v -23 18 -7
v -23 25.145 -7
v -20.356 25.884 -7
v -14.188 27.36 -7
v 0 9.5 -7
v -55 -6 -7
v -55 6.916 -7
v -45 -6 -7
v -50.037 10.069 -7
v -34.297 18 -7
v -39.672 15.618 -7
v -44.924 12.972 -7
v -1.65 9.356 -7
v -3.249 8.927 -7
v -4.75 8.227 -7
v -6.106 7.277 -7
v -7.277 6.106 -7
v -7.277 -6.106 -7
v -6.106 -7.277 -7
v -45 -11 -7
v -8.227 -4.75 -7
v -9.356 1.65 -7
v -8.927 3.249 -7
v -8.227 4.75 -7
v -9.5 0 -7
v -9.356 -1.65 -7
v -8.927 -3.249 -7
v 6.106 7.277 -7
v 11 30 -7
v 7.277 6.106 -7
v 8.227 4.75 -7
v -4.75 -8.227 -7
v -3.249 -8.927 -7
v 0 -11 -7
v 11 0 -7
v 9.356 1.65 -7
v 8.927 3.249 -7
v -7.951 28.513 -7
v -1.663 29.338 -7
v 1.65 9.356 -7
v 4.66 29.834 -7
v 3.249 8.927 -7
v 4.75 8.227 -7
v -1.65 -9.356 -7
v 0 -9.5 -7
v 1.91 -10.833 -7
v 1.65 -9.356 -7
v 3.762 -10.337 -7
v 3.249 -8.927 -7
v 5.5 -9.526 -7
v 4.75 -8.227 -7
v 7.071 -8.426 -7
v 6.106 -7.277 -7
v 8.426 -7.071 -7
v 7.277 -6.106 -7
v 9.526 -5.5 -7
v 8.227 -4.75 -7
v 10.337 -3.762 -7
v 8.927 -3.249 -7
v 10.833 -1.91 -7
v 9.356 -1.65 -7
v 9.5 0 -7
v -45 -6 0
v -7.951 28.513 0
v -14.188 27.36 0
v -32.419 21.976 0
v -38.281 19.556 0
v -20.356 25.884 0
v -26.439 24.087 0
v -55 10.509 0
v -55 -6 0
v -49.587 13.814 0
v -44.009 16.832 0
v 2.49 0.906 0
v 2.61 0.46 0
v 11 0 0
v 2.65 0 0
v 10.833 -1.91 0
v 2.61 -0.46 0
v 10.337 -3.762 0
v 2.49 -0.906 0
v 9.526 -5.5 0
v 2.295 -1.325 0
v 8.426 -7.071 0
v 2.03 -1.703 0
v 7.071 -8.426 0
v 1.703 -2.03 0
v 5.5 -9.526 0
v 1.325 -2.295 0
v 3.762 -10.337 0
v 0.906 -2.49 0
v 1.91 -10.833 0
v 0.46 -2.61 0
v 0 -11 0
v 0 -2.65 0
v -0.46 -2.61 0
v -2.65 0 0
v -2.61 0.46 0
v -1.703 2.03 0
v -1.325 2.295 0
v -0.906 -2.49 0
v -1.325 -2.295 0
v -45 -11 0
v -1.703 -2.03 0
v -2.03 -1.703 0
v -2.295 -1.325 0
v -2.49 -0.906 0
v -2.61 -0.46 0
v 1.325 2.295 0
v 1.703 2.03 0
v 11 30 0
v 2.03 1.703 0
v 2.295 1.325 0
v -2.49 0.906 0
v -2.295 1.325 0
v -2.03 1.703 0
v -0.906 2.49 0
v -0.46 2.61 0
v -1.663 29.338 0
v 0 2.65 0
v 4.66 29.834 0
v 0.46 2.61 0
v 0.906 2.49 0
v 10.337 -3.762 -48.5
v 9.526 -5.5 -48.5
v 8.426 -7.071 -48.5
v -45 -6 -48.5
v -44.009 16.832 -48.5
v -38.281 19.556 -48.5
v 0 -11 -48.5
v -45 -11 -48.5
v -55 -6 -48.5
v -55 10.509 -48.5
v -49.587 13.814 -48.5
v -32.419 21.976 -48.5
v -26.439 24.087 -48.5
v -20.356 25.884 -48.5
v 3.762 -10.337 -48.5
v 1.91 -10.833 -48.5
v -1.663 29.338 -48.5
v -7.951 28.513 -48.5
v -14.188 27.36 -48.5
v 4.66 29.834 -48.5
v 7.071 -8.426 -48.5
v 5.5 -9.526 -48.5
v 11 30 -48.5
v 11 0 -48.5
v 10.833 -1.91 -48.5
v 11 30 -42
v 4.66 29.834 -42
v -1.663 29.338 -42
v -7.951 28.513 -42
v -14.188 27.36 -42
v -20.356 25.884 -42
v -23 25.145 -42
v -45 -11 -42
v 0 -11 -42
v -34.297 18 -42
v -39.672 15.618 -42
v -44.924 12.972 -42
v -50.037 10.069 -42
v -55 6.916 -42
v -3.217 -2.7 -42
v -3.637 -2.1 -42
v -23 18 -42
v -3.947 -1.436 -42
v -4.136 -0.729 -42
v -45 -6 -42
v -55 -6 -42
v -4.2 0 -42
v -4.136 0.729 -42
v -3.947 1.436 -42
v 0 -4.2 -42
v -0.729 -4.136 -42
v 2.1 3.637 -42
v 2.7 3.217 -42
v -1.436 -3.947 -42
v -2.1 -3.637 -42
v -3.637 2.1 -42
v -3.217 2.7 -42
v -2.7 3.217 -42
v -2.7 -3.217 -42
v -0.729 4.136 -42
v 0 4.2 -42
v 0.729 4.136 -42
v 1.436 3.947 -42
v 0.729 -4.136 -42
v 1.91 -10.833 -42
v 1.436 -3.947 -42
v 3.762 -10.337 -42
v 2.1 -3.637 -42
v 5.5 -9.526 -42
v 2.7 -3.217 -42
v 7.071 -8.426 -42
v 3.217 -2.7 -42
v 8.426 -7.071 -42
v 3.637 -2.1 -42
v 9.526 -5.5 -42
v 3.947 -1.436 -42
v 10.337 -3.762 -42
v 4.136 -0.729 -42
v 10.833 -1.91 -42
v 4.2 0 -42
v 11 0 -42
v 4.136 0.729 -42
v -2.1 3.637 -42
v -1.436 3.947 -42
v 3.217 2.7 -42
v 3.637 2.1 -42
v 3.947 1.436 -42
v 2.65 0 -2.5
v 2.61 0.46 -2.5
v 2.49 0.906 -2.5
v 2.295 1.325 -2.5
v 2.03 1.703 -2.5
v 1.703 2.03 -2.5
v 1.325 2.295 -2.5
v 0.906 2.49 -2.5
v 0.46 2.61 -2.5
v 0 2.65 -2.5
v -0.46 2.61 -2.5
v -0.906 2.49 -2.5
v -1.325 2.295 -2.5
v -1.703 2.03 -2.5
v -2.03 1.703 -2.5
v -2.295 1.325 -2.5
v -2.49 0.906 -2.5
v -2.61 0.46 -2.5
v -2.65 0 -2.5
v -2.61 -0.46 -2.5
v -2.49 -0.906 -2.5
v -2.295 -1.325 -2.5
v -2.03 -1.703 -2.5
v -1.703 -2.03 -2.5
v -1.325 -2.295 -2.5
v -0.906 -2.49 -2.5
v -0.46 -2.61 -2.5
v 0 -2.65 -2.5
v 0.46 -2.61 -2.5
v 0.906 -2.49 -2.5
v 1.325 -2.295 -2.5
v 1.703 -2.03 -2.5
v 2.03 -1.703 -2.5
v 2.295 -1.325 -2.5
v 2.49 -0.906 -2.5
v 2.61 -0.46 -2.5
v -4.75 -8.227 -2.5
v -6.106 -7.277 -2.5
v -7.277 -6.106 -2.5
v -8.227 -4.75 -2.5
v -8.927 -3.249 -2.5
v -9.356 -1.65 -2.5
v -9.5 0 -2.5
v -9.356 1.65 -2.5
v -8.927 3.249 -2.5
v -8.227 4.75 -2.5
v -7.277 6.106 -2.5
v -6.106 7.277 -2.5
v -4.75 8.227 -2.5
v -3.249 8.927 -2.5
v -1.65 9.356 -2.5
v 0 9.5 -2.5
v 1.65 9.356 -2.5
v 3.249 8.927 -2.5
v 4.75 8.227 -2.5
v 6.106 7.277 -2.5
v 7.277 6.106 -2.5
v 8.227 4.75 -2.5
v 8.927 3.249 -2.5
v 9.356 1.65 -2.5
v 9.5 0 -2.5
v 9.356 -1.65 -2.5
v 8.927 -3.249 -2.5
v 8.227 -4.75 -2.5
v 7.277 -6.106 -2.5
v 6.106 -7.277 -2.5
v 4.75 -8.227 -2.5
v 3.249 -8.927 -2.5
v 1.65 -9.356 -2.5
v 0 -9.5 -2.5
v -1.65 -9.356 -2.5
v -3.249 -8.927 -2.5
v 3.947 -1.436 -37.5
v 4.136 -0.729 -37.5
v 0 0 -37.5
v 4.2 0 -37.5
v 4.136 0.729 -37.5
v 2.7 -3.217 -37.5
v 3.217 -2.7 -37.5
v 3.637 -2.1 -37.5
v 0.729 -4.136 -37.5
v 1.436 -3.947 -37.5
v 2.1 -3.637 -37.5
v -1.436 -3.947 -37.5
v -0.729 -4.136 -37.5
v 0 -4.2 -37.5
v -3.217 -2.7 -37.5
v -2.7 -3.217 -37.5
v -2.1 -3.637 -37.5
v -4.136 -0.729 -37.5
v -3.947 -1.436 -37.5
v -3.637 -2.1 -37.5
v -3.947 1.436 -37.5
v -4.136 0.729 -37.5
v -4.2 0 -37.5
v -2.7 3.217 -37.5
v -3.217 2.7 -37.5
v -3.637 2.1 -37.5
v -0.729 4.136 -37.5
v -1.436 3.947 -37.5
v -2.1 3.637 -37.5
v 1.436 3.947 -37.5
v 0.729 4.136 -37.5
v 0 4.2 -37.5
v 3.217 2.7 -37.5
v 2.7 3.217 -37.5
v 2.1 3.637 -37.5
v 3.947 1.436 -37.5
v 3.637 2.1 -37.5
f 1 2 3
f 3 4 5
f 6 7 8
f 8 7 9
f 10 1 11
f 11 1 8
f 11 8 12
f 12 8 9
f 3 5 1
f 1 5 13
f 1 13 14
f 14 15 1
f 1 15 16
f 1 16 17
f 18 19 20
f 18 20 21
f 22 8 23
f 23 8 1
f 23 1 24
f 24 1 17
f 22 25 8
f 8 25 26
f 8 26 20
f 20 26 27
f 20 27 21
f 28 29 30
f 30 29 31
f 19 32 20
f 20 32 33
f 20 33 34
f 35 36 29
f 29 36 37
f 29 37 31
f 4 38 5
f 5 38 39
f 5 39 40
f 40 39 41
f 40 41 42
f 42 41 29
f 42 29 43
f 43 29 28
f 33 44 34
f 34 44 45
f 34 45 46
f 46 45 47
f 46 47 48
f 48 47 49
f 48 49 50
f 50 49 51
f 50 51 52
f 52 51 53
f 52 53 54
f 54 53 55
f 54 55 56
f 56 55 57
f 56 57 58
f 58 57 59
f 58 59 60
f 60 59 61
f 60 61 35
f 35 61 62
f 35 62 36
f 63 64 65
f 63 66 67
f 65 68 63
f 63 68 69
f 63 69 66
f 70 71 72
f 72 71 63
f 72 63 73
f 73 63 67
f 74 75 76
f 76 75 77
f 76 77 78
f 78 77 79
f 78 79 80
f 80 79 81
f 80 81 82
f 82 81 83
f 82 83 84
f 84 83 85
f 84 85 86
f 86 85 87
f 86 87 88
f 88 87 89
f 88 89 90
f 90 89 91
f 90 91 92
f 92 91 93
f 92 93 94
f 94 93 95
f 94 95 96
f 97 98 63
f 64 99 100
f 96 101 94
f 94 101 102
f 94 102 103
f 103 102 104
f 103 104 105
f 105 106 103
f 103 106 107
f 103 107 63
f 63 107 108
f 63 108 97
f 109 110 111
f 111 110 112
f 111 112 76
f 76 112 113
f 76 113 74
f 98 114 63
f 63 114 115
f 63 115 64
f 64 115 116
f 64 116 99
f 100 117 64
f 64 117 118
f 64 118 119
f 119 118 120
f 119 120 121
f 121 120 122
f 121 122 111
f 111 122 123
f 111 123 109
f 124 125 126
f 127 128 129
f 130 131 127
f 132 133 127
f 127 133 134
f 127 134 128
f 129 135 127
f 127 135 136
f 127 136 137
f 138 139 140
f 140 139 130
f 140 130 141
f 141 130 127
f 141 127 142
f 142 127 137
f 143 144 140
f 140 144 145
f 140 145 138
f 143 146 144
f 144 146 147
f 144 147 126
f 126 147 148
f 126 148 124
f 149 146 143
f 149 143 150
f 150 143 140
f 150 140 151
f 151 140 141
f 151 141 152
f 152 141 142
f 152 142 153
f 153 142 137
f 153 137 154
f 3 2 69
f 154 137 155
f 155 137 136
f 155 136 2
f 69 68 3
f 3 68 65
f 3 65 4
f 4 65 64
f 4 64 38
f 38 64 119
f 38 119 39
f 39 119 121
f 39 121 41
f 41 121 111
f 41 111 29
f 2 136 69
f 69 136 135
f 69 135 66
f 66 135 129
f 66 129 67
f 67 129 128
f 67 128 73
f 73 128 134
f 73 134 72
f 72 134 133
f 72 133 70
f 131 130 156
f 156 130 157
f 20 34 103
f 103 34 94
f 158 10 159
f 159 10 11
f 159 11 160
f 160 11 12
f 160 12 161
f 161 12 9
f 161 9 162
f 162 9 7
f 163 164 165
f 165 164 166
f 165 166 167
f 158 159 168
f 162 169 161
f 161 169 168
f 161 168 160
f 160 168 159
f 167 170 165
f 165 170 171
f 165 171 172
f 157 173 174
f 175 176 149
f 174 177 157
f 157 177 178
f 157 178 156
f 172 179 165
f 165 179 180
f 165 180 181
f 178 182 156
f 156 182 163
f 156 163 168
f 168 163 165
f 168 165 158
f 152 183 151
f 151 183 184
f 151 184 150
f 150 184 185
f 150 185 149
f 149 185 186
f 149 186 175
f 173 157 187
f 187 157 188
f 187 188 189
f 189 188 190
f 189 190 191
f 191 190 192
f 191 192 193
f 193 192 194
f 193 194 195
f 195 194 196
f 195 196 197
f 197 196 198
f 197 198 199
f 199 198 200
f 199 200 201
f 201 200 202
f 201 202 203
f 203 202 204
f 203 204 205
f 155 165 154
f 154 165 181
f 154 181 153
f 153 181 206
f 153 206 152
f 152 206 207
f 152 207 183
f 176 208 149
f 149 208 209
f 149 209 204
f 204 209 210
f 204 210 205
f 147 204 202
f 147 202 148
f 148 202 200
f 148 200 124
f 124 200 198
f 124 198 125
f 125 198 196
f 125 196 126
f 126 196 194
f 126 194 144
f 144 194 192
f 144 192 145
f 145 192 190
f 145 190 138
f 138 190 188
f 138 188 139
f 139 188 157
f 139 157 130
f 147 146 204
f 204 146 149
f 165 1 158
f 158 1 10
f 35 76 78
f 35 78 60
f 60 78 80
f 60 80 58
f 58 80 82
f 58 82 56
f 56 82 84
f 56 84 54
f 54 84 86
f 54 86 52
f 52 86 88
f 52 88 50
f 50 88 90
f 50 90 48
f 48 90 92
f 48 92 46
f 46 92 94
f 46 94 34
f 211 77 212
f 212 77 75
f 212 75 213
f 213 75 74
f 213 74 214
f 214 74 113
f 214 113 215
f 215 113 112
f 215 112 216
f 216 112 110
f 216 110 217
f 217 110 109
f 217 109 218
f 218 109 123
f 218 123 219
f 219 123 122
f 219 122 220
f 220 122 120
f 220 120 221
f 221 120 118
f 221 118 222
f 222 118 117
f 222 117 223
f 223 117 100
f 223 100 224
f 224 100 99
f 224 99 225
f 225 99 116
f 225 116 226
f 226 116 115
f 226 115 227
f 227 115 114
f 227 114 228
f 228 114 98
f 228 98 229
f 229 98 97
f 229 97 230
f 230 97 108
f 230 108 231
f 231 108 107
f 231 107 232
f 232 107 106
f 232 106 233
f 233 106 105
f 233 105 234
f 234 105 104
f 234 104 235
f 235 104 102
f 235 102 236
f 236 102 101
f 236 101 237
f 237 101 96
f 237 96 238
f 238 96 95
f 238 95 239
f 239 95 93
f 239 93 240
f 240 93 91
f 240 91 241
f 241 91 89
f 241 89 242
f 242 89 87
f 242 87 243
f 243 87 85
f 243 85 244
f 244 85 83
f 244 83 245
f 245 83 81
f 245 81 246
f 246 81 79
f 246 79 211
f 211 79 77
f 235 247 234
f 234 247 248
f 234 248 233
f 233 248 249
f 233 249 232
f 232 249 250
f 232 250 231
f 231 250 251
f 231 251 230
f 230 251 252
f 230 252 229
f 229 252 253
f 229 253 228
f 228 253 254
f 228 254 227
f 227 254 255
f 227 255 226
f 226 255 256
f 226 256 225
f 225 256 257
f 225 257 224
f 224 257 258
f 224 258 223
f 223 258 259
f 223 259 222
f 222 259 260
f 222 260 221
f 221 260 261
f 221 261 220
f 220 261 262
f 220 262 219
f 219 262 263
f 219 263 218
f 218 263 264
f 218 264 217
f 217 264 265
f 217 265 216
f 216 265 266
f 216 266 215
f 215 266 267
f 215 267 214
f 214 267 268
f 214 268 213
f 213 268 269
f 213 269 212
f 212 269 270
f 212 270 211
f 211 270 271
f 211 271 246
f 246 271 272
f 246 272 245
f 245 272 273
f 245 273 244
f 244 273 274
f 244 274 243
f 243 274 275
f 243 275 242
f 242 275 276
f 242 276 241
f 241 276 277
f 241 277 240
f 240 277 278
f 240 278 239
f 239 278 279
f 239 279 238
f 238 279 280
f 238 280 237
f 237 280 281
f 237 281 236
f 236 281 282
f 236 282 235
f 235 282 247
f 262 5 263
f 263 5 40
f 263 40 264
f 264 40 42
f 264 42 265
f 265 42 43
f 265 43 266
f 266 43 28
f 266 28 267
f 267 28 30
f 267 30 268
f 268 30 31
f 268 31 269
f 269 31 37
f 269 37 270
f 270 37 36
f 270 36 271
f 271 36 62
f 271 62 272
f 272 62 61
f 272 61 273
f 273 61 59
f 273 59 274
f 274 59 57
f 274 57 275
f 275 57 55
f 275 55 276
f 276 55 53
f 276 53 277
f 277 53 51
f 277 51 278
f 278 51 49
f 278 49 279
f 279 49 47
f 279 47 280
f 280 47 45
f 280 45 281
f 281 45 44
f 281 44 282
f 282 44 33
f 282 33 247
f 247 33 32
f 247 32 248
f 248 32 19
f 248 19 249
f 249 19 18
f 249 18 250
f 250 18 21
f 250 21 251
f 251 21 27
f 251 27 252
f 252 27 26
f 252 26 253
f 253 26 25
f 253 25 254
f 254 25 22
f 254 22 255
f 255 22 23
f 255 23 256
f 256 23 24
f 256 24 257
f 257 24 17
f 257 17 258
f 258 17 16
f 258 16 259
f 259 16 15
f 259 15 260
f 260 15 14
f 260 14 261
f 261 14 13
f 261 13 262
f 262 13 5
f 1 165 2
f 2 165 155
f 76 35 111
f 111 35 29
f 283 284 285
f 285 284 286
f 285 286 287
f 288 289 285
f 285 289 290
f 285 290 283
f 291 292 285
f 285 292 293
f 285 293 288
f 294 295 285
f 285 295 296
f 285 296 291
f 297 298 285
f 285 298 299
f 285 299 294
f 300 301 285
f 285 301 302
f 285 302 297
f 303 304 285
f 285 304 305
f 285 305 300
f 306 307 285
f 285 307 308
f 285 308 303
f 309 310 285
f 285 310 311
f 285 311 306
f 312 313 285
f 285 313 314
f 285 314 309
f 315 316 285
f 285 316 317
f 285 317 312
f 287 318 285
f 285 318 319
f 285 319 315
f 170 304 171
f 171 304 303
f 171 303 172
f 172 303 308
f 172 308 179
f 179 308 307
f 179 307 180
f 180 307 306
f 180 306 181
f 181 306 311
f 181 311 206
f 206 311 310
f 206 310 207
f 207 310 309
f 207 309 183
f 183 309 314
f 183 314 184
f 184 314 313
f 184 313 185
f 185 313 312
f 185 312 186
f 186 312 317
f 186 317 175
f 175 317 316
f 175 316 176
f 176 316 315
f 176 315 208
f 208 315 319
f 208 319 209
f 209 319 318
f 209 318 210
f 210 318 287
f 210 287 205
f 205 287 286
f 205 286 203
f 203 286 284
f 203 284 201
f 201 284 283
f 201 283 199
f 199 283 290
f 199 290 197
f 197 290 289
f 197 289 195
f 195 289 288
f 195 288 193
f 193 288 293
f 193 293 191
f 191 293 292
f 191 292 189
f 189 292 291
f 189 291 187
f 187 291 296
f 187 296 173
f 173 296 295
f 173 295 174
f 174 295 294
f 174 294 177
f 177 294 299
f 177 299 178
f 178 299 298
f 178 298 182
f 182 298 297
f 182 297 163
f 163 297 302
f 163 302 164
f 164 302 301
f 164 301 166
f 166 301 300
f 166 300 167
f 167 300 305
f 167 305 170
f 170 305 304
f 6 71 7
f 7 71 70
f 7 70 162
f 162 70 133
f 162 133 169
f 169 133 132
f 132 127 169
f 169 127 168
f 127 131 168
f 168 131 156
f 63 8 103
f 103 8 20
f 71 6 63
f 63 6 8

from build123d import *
from build123d.topology import SkipClean

# Parameters (mm, degrees)
SKETCH1_R              = 9.5
BOSS_EXTRUDE1_DEPTH    = 48
CUT_EXTRUDE1_DEPTH     = 62.48170459575759
BOSS_EXTRUDE2_START    = -2.5
SKETCH3_R              = 9.5
SKETCH3_R_2            = 2.4
BOSS_EXTRUDE2_DEPTH    = 2.5
SKETCH4_R              = 9.5
SKETCH4_R_2            = 4.2
BOSS_EXTRUDE3_DEPTH    = 7
SKETCH5_R              = 4.2
BOSS_EXTRUDE4_DEPTH    = 11
BOSS_EXTRUDE5_DEPTH    = 48
CUT_EXTRUDE2_START     = -48
CUT_EXTRUDE2_OUTLINE_R = 2.65
CUT_EXTRUDE2_DEPTH     = 48
CUT_EXTRUDE3_START     = -4.5
SKETCH8_R              = 9.5
CUT_EXTRUDE3_DEPTH     = 4.5
SKETCH9_R              = 6.067807638148196
CUT_EXTRUDE4_DEPTH     = 4.5
SKETCH10_R             = 9.5
BOSS_EXTRUDE6_DEPTH    = 4.5
SKETCH11_R             = 4.2
BOSS_EXTRUDE7_DEPTH    = 3.5
SKETCH12_R             = 2.4
BOSS_EXTRUDE8_DEPTH    = 2.5
CUT_EXTRUDE5_DEPTH     = 14.500000000000005
SKETCH15_R             = 3.436413098279149
BOSS_EXTRUDE9_DEPTH    = 10
BOSS_EXTRUDE10_DEPTH   = 0.5
SKETCH18_R             = 4.2
CUT_EXTRUDE8_DEPTH     = 0.5
CUT_EXTRUDE9_DEPTH     = 69.52919086053767
BOSS_EXTRUDE11_DEPTH   = 6.9999999999999964
CUT_EXTRUDE10_DEPTH    = 99.24586505293748
BOSS_EXTRUDE12_DEPTH   = 41.5
SKETCH25_R             = 4.2
CUT_EXTRUDE11_DEPTH    = 0.5
CUT_EXTRUDE12_DEPTH    = 99.24586505293753
CUT_EXTRUDE13_DEPTH    = 80.2290981899959


# Read off the part's stored shape, not the designer's step: Cut-Extrude2
with BuildPart() as part:
    # Sketch1 → Boss-Extrude1 (new body)
    with BuildSketch(Plane.XY):
        with BuildLine():
            Line((-12, 0), (-12, 30))
            Line((-12, 30), (12, 30))
            Line((12, 30), (12, 0))
            ThreePointArc((12, 0), (-2.2e-15, -12), (-12, 0))
        make_face()
        Circle(SKETCH1_R, mode=Mode.SUBTRACT)
    extrude(amount=-BOSS_EXTRUDE1_DEPTH)

    # Sketch2 → Cut-Extrude1 (cut, through all)
    with BuildSketch(Plane.ZY.offset(12)):
        Polygon((-6.999999999999999, -12), (-41, -12.000000000000004), (-41, 18), (-7.000000000000001, 18.000000000000004), align=None)
    extrude(amount=-CUT_EXTRUDE1_DEPTH, mode=Mode.SUBTRACT)

    # Sketch3 → Boss-Extrude2 (add)
    with BuildSketch(Plane(origin=(0, 0, -48), x_dir=(-1, 0, 0), z_dir=(0, 0, -1)).offset(BOSS_EXTRUDE2_START)):
        Circle(SKETCH3_R)
        Circle(SKETCH3_R_2, mode=Mode.SUBTRACT)
    extrude(amount=BOSS_EXTRUDE2_DEPTH)

    # Sketch4 → Boss-Extrude3 (add)
    with BuildSketch(Plane.XY):
        with Locations(Location((0, 0, 0), (0, 0, 180))):
            Circle(SKETCH4_R)
        Circle(SKETCH4_R_2, mode=Mode.SUBTRACT)
    extrude(amount=-BOSS_EXTRUDE3_DEPTH)

    # Sketch5 → Boss-Extrude4 (add)
    with BuildSketch(Plane.XY):
        Circle(SKETCH5_R)
    extrude(amount=-BOSS_EXTRUDE4_DEPTH)

    # Sketch6 → Boss-Extrude5 (add)
    with BuildSketch(Plane(origin=(0, 0, -48), x_dir=(-1, 0, 0), z_dir=(0, 0, -1))):
        Polygon((12, 30), (12, 18), (17.999999999999925, 18), (38.00000000000001, 18), (38.00000000000001, 30), align=None)
    extrude(amount=-BOSS_EXTRUDE5_DEPTH)

    # Cut-Extrude2 outline → Cut-Extrude2 (cut)
    with BuildSketch(Plane.XY.offset(CUT_EXTRUDE2_START)):
        Circle(CUT_EXTRUDE2_OUTLINE_R)
    extrude(amount=CUT_EXTRUDE2_DEPTH, mode=Mode.SUBTRACT)

    # Sketch8 → Cut-Extrude3 (cut)
    with BuildSketch(Plane(origin=(0, -4e-16, -7), x_dir=(-1, 0, 0), z_dir=(0, -6e-17, -1)).offset(CUT_EXTRUDE3_START)):
        Circle(SKETCH8_R)
    extrude(amount=CUT_EXTRUDE3_DEPTH, mode=Mode.SUBTRACT)


with BuildPart() as cut_extrude3_piece_1:
    # of the separate pieces the step leaves, piece 1, a body of its own (cut_extrude3_pieces)
    add(part.part.solids().sort_by_distance((-12, 0, 0))[0])

    # Sketch10 → Boss-Extrude6 (add)
    with BuildSketch(Plane.XY.offset(-45.5)):
        with Locations(Location((0, 0, 0), (0, 0, 90))):
            Circle(SKETCH10_R)
    extrude(amount=BOSS_EXTRUDE6_DEPTH)

    # Sketch11 → Boss-Extrude7 (add)
    with BuildSketch(Plane.XY.offset(-41)):
        with Locations(Location((0, 0, 0), (0, 0, 180))):
            Circle(SKETCH11_R)
    extrude(amount=BOSS_EXTRUDE7_DEPTH)

    # Sketch12 → Boss-Extrude8 (add)
    with BuildSketch(Plane(origin=(0, 0, -48), x_dir=(-1, 0, 0), z_dir=(0, 0, -1))):
        Circle(SKETCH12_R)
    extrude(amount=-BOSS_EXTRUDE8_DEPTH)

    # Sketch13 → Cut-Extrude5 (cut)
    with BuildSketch(Plane(origin=(0, 30, 0), x_dir=(1, 0, 0), z_dir=(0, 1, 0))):
        Polygon((12, 41), (-23.000000000000004, 41), (-22.999999999999996, 6.999999999999988), (12, 7.000000000000001), align=None)
    extrude(amount=-CUT_EXTRUDE5_DEPTH, mode=Mode.SUBTRACT)

    # Sketch15 → Boss-Extrude9 (add)
    with BuildSketch(Plane(origin=(0, 0, -48), x_dir=(-1, 0, 0), z_dir=(0, 0, -1))):
        Circle(SKETCH15_R)
    extrude(amount=-BOSS_EXTRUDE9_DEPTH)

    # Sketch16 → Boss-Extrude10 (add)
    with BuildSketch(Plane(origin=(0, 0, -48), x_dir=(-1, 0, 0), z_dir=(0, 0, -1))):
        Polygon((38.00000000000001, 30), (-12, 30), (-12, 18), (12, 18), (38.00000000000001, 18), align=None)
        with BuildLine():
            Line((-12, 0), (11.999999999999998, 0))
            ThreePointArc((11.999999999999998, 0), (-2.2e-15, -12), (-12, 0))
        make_face()
        with BuildLine():
            ThreePointArc((11.999999999999998, 0), (7.3e-16, 11.999999999999998), (-11.999999999999998, 1.47e-15))
            Line((-12, 0), (12, 0))
        make_face()
        with BuildLine():
            Line((12, 0), (-12, 0))
            ThreePointArc((-11.999999999999998, 1.47e-15), (-2.2e-15, -11.999999999999998), (11.999999999999998, -2.94e-15))
        make_face()
        with BuildLine():
            Line((12, 18), (-12, 18))
            Line((-12, 18), (-12, 0))
            ThreePointArc((-11.999999999999998, 1.47e-15), (7.3e-16, 11.999999999999998), (11.999999999999998, 0))
            Line((11.999999999999998, 0), (11.999999999999998, 18))
        make_face()
    extrude(amount=BOSS_EXTRUDE10_DEPTH)

    # Sketch18 → Cut-Extrude8 (cut)
    with SkipClean():  # the faces are left unmerged after this step: merging them gives an invalid solid
        with BuildSketch(Plane.XY.offset(-41)):
            with BuildLine():
                Line((12.000000000000004, 30), (-22.999999999999996, 30))
                Line((-22.999999999999996, 30), (-22.999999999999996, 18))
                Line((-22.999999999999996, 18), (-12.000000000000002, 18))
                Line((-12.000000000000002, 18), (-12.000000000000002, 0))
                ThreePointArc((-12, 1.47e-15), (-2.2e-15, -12), (12, -2.94e-15))
                Line((12, 0), (12, 30))
            make_face()
            Circle(SKETCH18_R, mode=Mode.SUBTRACT)
        extrude(amount=-CUT_EXTRUDE8_DEPTH, mode=Mode.SUBTRACT)

    # Sketch19 → Cut-Extrude9 (cut, through all)
    with SkipClean():  # the faces are left unmerged after this step: merging them gives an invalid solid
        with BuildSketch(Plane.XY):
            with BuildLine():
                ThreePointArc((11, -2.69e-15), (-2.02e-15, -11), (-11, 1.35e-15))
                Line((-11, 0), (-12.000000000000002, 0))
                ThreePointArc((-12.000000000000002, 0), (-7.3e-16, -12.000000000000002), (12.000000000000002, -1.47e-15))
                Line((12, 0), (12, 30))
                Line((12, 30), (11, 30))
                Line((11, 30), (11, 0))
            make_face()
        extrude(amount=-CUT_EXTRUDE9_DEPTH, mode=Mode.SUBTRACT)

    # Sketch21 → Boss-Extrude11 (add)
    with SkipClean():  # the faces are left unmerged after this step: merging them gives an invalid solid
        with BuildSketch(Plane.XY):
            with BuildLine():
                Line((-80, -11.000000000000007), (-2.02e-15, -11))
                ThreePointArc((-2.02e-15, -11), (-11, 7.951e-14), (1.5455e-13, 11))
                Line((-9.4e-16, 11), (-2e-17, 29.50098275984317))
                ThreePointArc((1.58451e-12, 29.500982759843026), (-43.87333050880174, 16.901328954446853), (-79.99999999999999, -11.000000000000014))
            make_face()
        boss_extrude11 = extrude(amount=-BOSS_EXTRUDE11_DEPTH)

    # Mirror2: Boss-Extrude11 across plane
    with SkipClean():  # the faces are left unmerged after this step: merging them gives an invalid solid
        add(boss_extrude11.mirror(Plane.XY.offset(-24.25)))

    # Sketch23 → Cut-Extrude10 (cut, through all)
    with SkipClean():  # the faces are left unmerged after this step: merging them gives an invalid solid
        with BuildSketch(Plane.XY):
            with BuildLine():
                Line((11, 30), (-38.00000000000001, 30))
                Line((-38.00000000000001, 30), (-38.00000000000001, 19.680026503546667))
                ThreePointArc((-38.000000000000014, 19.680026503546685), (-14.03748116807828, 27.39201372395351), (10.999999999999979, 30.00000000000003))
            make_face()
        extrude(amount=-CUT_EXTRUDE10_DEPTH, mode=Mode.SUBTRACT)

    # Sketch24 → Boss-Extrude12 (add)
    with BuildSketch(Plane.XY):
        with BuildLine():
            ThreePointArc((-23.00000000000003, 25.145323923706542), (-54.060518829682096, 11.110516861146493), (-80, -11))
            Line((-80, -11.000000000000007), (-75.95443157615205, -11.000000000000004))
            ThreePointArc((-75.95443157615205, -11.000000000000028), (-51.689916223605806, 9.057380529785846), (-22.999999999999986, 22.017084465179764))
            Line((-22.999999999999996, 22.017084465179774), (-23, 25.1453239237065))
        make_face()
    extrude(amount=-BOSS_EXTRUDE12_DEPTH)

    # Sketch25 → Cut-Extrude11 (cut)
    # profile 1 of 4: a face of its own
    with BuildSketch(Plane.XY.offset(-41.5)):
        with BuildLine():
            ThreePointArc((-34.29658362177963, 17.999999999999986), (-56.6966229233105, 5.756871837942555), (-75.95443157615205, -11.000000000000028))
            Line((-75.95443157615205, -11.000000000000007), (0, -11.000000000000007))
            ThreePointArc((-2.02e-15, -11), (-7.778174593052022, 7.778174593052023), (11, 0))
            Line((10.999999999999988, 0), (10.999999999999988, 26.999999999999993))
            ThreePointArc((10.999999999999988, 26.999999999999986), (-6.181599512464837, 25.74765282571859), (-22.999999999996817, 22.017084465180716))
            Line((-23, 22.01708446518151), (-23.000000000000004, 18))
            Line((-23.000000000000004, 18), (-34.29658362177963, 18.000000000000004))
        make_face()
    # profile 2 of 4: a face of its own
    with BuildSketch(Plane.XY.offset(-41.5)):
        with BuildLine():
            ThreePointArc((11, 0), (-7.778174593052022, 7.778174593052023), (-2.02e-15, -11))
            ThreePointArc((-2.02e-15, -11), (7.778174593052021, -7.778174593052024), (11, -2.69e-15))
        make_face()
        Circle(SKETCH25_R, mode=Mode.SUBTRACT)
    # profile 3 of 4: a face of its own
    with BuildSketch(Plane.XY.offset(-41.5)):
        with BuildLine():
            Line((-15.831452239273311, 26.999999999999996), (10.999999999999986, 26.999999999999996))
            Line((11, 26.999999999999996), (11, 30))
            ThreePointArc((10.999999999999591, 30), (-2.49932247622473, 29.24767054972125), (-15.83145223927318, 26.99999999999892))
        make_face()
    # profile 4 of 4: a face of its own
    with BuildSketch(Plane.XY.offset(-41.5)):
        with BuildLine():
            ThreePointArc((-15.83145223927318, 26.99999999999892), (-19.4298595333881, 26.127289318508147), (-22.99999999999981, 25.145323923705888))
            Line((-23, 25.14532392370651), (-23, 22.01708446518151))
            ThreePointArc((-22.999999999996817, 22.017084465180716), (-6.181599512464837, 25.74765282571859), (10.999999999999988, 26.999999999999986))
            Line((10.999999999999986, 26.999999999999996), (-15.831452239273311, 26.999999999999996))
        make_face()
    extrude(amount=-CUT_EXTRUDE11_DEPTH, mode=Mode.SUBTRACT)

    # Sketch26 → Cut-Extrude12 (cut, through all)
    with BuildSketch(Plane(origin=(0, 0, -48.5), x_dir=(-1, 0, 0), z_dir=(0, 0, -1))):
        with BuildLine():
            Line((54.999999999999986, 4.498697742403834), (54.99999999999999, -11))
            Line((55, -11), (70, -11))
            Line((70, -11), (73.20879972555869, -11.000000000000004))
            ThreePointArc((73.2087997255591, -10.99999999999882), (64.50313428378952, -2.7821940147532445), (55.00000000000103, 4.498697742404204))
        make_face()
        with BuildLine():
            Line((54.99999999999998, 10.508698660488534), (54.999999999999986, 4.498697742403834))
            ThreePointArc((55.00000000000103, 4.498697742404204), (64.50313428378952, -2.7821940147532445), (73.2087997255591, -10.99999999999882))
            Line((73.20879972555869, -11.000000000000004), (80, -11.00000000000001))
            ThreePointArc((80, -11), (68.23323816124723, 0.6066070293515935), (54.999999999999986, 10.508698660488534))
        make_face()
    extrude(amount=-CUT_EXTRUDE12_DEPTH, mode=Mode.SUBTRACT)

    # Sketch27 → Cut-Extrude13 (cut, through all)
    with BuildSketch(Plane(origin=(0, 0, -48.5), x_dir=(-1, 0, 0), z_dir=(0, 0, -1))):
        Polygon((54.999999999999986, -11.000000000000005), (44.999999999999986, -11.000000000000007), (44.999999999999986, -6.000000000000005), (54.999999999999986, -6.000000000000004), align=None)
    extrude(amount=-CUT_EXTRUDE13_DEPTH, mode=Mode.SUBTRACT)


with BuildPart() as cut_extrude3_piece_2:
    # of the separate pieces the step leaves, piece 2, a body of its own (cut_extrude3_pieces)
    add(part.part.solids().sort_by_distance((4.2, 0, -7))[0])

    # Sketch9 → Cut-Extrude4 (cut)
    with BuildSketch(Plane(origin=(0, 0, -11), x_dir=(-1, 0, 0), z_dir=(0, 0, -1))):
        Circle(SKETCH9_R)
    extrude(amount=-CUT_EXTRUDE4_DEPTH, mode=Mode.SUBTRACT)


solid = cut_extrude3_piece_1.part
